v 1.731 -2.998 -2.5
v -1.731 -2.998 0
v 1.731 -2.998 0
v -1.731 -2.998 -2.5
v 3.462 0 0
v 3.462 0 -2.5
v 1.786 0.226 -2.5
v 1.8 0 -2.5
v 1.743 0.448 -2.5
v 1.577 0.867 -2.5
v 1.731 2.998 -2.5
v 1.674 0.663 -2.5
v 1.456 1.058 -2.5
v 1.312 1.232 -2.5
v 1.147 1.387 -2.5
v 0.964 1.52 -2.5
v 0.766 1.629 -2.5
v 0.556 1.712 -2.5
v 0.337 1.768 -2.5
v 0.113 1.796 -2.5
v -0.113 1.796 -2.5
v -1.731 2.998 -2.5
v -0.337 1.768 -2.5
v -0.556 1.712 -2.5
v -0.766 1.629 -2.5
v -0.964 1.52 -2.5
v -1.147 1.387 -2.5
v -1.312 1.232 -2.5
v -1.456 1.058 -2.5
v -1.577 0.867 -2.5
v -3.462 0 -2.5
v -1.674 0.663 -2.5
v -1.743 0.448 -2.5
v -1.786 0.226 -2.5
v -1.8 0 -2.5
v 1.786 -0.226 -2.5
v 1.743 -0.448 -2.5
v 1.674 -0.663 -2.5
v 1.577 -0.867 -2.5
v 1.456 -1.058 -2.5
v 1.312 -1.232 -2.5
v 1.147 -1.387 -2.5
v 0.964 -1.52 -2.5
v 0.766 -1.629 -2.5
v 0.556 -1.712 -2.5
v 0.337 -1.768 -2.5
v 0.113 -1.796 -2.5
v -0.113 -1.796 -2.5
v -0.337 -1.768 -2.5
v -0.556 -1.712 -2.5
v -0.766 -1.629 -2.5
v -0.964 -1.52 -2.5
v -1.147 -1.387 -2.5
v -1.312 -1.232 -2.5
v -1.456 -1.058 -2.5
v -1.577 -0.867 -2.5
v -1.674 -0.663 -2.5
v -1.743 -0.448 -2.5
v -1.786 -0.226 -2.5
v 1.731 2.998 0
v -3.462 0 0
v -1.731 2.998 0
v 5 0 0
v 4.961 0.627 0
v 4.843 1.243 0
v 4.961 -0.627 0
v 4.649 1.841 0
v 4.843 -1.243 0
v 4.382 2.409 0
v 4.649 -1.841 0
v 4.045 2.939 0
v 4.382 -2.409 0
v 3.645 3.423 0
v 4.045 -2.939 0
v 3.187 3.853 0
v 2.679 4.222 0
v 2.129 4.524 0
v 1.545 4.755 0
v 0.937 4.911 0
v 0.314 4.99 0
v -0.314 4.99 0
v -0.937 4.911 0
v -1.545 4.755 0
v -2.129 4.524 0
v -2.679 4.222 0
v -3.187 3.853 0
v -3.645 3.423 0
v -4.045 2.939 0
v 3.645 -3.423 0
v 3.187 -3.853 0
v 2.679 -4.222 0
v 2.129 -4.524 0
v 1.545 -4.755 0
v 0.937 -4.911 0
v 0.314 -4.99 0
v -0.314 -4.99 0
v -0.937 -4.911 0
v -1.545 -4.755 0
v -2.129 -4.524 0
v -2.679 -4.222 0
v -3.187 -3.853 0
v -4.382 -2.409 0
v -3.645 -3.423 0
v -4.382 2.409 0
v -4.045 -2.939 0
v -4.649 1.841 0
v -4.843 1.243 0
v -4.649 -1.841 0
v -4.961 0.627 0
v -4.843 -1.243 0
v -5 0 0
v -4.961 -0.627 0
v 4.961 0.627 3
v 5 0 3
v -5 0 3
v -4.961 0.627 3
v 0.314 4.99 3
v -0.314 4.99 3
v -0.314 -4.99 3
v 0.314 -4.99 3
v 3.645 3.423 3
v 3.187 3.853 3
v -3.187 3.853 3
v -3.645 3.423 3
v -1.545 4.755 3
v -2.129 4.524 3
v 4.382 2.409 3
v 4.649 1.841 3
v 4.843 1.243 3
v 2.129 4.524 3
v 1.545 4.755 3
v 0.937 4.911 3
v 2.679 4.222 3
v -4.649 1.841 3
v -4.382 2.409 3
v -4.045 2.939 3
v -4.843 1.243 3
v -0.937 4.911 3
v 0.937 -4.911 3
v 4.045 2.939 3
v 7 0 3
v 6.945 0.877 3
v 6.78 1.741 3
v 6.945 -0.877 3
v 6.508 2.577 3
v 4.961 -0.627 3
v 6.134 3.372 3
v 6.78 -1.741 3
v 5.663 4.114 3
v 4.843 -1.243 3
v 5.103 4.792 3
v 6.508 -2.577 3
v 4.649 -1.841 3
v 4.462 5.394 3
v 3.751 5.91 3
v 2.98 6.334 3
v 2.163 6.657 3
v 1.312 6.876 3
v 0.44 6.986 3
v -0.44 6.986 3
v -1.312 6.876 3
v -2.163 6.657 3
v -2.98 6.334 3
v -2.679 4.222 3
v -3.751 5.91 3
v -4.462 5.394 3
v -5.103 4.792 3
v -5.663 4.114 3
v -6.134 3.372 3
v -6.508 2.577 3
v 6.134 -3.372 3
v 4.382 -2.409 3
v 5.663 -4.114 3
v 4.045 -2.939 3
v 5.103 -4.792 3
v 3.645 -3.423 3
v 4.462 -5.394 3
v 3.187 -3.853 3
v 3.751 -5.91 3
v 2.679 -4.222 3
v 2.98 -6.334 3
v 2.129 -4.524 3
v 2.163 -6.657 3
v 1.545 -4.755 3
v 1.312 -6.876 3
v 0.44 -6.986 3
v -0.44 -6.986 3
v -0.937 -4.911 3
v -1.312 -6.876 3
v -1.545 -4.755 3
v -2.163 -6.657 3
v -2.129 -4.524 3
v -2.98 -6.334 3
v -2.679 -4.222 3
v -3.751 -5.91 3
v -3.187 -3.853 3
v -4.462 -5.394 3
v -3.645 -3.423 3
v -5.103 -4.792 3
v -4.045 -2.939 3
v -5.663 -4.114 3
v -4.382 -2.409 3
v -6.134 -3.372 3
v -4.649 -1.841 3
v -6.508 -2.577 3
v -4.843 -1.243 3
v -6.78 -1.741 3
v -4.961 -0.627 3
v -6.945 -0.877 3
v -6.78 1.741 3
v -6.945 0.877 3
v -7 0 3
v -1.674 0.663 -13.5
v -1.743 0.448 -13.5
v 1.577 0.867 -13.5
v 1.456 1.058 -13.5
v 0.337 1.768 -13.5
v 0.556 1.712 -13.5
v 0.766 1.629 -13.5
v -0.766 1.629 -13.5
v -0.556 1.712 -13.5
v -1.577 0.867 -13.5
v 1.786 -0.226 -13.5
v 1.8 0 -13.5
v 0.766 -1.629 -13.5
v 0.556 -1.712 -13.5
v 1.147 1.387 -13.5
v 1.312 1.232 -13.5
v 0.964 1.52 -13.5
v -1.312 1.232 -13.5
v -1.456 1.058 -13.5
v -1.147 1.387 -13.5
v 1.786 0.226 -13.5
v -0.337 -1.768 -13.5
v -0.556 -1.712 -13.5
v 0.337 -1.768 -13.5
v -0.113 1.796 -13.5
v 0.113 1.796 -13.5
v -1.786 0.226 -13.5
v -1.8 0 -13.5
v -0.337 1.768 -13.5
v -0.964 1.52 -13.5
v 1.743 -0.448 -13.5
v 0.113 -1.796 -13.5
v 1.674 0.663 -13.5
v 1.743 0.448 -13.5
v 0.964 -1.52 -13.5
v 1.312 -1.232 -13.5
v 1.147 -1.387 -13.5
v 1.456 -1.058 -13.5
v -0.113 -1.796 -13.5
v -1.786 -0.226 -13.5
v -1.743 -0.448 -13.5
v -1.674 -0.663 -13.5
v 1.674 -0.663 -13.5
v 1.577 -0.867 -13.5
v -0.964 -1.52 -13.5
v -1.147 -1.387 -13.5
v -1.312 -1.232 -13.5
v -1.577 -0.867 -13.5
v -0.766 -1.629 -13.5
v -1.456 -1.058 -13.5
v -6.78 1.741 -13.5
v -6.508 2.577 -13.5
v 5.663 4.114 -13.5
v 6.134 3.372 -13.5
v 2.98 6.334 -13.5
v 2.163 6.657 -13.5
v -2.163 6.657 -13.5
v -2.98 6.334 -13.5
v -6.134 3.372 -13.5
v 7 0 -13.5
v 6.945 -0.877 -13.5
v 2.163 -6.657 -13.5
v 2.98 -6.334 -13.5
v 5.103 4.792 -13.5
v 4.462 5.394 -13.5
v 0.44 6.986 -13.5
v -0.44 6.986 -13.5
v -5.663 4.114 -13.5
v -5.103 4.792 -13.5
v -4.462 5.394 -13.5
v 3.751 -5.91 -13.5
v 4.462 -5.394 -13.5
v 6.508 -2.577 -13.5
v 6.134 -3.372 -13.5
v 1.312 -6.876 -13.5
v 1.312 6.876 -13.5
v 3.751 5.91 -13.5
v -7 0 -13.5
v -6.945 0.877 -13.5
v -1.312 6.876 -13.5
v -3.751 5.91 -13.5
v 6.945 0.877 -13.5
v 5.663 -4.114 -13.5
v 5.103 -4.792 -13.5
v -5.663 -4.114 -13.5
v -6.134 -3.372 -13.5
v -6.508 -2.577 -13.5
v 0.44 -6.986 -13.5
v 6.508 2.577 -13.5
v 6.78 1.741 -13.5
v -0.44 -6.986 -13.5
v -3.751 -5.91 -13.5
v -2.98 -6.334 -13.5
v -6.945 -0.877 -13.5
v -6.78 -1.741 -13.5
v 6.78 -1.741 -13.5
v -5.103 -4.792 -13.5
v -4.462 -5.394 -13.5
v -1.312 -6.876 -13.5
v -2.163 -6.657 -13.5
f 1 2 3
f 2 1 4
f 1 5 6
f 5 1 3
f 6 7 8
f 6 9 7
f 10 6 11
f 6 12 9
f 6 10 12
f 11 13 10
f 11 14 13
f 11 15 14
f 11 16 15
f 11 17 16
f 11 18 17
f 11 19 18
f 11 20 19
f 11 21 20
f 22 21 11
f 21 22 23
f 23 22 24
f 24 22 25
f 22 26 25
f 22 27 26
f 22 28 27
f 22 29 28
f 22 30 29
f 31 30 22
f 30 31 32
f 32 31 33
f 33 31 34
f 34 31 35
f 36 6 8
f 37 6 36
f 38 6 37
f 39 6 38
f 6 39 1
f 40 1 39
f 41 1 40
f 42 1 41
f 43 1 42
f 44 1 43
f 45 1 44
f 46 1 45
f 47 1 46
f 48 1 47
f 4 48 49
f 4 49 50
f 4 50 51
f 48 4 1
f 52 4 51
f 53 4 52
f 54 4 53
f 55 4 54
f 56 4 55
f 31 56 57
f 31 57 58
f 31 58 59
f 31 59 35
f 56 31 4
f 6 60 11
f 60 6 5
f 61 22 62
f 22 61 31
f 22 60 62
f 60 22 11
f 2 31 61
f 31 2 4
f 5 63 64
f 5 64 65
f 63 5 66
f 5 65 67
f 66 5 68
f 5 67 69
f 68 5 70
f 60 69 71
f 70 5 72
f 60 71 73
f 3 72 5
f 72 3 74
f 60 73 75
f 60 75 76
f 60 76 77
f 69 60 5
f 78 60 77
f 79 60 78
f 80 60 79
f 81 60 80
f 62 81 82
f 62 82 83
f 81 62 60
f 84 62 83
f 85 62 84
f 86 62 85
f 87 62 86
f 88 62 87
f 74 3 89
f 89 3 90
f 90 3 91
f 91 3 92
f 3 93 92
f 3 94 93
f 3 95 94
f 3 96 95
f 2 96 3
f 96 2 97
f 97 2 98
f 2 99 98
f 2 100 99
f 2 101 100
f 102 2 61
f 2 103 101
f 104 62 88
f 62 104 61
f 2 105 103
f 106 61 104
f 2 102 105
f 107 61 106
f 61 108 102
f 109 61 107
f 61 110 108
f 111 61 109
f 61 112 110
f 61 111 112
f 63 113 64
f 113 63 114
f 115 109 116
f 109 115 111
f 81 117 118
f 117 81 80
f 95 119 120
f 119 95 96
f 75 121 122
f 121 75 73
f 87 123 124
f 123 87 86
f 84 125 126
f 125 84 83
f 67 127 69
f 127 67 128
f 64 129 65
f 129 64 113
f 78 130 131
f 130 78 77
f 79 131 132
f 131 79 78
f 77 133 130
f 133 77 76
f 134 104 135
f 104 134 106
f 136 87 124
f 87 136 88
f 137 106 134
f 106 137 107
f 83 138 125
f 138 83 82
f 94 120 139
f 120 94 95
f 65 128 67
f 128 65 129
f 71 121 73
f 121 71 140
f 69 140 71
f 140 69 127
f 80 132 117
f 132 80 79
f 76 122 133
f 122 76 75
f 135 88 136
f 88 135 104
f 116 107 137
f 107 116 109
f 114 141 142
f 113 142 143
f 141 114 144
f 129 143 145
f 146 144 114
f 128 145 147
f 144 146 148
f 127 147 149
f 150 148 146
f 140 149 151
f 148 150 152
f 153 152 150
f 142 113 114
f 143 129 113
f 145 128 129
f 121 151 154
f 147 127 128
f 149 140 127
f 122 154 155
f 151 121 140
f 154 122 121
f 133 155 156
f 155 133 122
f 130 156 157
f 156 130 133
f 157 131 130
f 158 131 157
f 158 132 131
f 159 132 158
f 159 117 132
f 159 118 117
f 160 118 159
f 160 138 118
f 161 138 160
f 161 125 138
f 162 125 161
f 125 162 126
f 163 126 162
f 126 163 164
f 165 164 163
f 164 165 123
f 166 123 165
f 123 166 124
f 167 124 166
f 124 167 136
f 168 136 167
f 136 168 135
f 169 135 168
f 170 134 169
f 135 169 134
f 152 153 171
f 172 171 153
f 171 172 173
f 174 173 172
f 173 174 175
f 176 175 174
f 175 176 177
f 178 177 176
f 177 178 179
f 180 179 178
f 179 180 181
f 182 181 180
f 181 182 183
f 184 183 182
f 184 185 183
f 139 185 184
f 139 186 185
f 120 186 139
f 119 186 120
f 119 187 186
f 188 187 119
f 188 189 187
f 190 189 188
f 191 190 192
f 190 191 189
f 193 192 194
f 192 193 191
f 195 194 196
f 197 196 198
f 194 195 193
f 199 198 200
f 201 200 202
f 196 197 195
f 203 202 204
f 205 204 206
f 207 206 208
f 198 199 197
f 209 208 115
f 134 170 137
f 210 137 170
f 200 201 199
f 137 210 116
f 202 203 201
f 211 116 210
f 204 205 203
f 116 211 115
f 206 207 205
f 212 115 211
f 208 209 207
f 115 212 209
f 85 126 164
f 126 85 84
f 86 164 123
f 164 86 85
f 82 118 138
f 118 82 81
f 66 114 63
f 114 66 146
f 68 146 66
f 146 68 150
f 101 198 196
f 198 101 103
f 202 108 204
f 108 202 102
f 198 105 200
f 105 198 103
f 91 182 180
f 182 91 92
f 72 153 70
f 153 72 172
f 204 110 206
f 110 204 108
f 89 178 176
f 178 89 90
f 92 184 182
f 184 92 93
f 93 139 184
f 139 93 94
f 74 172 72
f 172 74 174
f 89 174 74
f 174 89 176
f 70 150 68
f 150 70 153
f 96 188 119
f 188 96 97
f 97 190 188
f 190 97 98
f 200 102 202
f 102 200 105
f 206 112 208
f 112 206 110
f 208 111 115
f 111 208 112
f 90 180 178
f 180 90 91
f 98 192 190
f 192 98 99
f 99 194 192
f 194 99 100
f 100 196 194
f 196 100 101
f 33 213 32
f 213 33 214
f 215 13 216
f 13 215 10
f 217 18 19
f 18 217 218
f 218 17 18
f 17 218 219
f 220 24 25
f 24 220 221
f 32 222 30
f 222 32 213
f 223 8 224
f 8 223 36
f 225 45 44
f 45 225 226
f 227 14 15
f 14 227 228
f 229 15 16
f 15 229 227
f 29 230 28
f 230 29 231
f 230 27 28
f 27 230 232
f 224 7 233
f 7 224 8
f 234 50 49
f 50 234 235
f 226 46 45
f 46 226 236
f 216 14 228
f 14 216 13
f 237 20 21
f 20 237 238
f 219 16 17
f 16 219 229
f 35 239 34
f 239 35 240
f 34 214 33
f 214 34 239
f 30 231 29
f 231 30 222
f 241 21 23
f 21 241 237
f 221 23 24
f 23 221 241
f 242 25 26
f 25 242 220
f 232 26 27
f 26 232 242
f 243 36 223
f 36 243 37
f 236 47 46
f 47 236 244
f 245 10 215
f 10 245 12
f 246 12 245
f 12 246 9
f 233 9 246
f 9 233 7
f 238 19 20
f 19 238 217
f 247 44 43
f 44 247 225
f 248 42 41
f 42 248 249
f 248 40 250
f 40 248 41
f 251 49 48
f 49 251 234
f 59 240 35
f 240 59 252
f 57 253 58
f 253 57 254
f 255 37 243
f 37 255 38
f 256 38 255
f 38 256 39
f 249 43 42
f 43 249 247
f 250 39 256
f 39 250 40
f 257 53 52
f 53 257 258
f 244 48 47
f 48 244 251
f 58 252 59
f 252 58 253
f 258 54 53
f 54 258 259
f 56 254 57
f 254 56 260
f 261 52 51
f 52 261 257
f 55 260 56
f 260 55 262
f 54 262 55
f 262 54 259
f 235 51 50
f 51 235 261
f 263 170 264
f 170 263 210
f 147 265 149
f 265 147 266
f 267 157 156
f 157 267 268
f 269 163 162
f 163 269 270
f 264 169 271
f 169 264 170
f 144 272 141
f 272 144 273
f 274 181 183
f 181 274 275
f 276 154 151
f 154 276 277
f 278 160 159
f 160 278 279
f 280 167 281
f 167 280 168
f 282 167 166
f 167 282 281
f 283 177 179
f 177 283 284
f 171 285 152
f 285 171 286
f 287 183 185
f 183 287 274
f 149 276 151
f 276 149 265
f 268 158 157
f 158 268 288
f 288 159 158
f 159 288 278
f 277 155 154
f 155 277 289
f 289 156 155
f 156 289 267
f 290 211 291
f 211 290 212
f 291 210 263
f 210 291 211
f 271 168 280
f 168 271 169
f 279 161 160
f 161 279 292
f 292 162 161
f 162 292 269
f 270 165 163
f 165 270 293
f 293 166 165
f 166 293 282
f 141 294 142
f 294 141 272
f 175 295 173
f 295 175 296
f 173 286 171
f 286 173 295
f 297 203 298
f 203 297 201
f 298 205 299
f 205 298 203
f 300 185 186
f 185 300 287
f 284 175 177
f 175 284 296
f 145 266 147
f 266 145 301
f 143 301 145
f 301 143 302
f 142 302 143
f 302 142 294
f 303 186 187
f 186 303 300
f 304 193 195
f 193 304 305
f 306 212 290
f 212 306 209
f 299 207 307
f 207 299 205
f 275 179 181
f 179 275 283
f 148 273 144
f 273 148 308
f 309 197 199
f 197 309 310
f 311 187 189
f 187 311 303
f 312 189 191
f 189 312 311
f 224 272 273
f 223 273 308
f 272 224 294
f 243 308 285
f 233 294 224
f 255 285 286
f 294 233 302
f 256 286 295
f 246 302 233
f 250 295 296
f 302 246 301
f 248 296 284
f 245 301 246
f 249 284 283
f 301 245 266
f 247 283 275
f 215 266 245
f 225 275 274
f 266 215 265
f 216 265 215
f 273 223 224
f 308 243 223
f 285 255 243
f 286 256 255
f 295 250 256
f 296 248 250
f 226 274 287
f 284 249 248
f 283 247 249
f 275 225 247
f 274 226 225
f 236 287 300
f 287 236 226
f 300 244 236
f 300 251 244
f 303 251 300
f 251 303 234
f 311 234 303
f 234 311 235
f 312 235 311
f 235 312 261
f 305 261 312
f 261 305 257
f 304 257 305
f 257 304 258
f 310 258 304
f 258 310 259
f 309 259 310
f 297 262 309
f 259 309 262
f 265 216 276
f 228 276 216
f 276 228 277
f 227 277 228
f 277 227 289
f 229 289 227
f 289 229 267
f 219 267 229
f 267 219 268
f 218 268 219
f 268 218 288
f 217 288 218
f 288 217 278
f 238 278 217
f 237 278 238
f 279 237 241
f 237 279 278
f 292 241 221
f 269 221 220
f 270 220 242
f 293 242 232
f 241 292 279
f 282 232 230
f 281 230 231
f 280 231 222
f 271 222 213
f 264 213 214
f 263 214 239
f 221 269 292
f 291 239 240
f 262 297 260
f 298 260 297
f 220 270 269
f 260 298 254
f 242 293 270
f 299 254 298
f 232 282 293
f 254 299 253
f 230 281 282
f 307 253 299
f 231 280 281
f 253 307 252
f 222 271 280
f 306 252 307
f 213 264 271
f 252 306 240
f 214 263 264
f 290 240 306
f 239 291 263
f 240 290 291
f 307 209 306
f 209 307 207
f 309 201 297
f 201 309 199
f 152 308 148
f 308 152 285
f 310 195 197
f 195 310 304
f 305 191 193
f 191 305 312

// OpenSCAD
$fn = 50;

difference() {
	union() {
		translate(v = [0, 0, -13.5]) {
			cylinder(h = 16.5, r = 7.0);
		}
	}
	union() {
		translate(v = [0, 0, 0]) {
			rotate(a = [0, 0, 0]) {
				difference() {
					union() {
						translate(v = [0, 0, -2.5]) {
							linear_extrude(height = 2.5) {
								polygon(points = [[3.4619999999999997, 0.0], [1.7310000000000003, 2.9981799479017264], [-1.7309999999999992, 2.9981799479017264], [-3.4619999999999997, 4.2397272186481365e-16], [-1.7310000000000014, -2.998179947901726], [1.7309999999999977, -2.9981799479017277]]);
							}
						}
					}
					union();
				}
			}
		}
		#cylinder(h = 3, r = 5.0);
		#translate(v = [0, 0, -100.0]) {
			cylinder(h = 200, r = 1.8);
		}
	}
}
